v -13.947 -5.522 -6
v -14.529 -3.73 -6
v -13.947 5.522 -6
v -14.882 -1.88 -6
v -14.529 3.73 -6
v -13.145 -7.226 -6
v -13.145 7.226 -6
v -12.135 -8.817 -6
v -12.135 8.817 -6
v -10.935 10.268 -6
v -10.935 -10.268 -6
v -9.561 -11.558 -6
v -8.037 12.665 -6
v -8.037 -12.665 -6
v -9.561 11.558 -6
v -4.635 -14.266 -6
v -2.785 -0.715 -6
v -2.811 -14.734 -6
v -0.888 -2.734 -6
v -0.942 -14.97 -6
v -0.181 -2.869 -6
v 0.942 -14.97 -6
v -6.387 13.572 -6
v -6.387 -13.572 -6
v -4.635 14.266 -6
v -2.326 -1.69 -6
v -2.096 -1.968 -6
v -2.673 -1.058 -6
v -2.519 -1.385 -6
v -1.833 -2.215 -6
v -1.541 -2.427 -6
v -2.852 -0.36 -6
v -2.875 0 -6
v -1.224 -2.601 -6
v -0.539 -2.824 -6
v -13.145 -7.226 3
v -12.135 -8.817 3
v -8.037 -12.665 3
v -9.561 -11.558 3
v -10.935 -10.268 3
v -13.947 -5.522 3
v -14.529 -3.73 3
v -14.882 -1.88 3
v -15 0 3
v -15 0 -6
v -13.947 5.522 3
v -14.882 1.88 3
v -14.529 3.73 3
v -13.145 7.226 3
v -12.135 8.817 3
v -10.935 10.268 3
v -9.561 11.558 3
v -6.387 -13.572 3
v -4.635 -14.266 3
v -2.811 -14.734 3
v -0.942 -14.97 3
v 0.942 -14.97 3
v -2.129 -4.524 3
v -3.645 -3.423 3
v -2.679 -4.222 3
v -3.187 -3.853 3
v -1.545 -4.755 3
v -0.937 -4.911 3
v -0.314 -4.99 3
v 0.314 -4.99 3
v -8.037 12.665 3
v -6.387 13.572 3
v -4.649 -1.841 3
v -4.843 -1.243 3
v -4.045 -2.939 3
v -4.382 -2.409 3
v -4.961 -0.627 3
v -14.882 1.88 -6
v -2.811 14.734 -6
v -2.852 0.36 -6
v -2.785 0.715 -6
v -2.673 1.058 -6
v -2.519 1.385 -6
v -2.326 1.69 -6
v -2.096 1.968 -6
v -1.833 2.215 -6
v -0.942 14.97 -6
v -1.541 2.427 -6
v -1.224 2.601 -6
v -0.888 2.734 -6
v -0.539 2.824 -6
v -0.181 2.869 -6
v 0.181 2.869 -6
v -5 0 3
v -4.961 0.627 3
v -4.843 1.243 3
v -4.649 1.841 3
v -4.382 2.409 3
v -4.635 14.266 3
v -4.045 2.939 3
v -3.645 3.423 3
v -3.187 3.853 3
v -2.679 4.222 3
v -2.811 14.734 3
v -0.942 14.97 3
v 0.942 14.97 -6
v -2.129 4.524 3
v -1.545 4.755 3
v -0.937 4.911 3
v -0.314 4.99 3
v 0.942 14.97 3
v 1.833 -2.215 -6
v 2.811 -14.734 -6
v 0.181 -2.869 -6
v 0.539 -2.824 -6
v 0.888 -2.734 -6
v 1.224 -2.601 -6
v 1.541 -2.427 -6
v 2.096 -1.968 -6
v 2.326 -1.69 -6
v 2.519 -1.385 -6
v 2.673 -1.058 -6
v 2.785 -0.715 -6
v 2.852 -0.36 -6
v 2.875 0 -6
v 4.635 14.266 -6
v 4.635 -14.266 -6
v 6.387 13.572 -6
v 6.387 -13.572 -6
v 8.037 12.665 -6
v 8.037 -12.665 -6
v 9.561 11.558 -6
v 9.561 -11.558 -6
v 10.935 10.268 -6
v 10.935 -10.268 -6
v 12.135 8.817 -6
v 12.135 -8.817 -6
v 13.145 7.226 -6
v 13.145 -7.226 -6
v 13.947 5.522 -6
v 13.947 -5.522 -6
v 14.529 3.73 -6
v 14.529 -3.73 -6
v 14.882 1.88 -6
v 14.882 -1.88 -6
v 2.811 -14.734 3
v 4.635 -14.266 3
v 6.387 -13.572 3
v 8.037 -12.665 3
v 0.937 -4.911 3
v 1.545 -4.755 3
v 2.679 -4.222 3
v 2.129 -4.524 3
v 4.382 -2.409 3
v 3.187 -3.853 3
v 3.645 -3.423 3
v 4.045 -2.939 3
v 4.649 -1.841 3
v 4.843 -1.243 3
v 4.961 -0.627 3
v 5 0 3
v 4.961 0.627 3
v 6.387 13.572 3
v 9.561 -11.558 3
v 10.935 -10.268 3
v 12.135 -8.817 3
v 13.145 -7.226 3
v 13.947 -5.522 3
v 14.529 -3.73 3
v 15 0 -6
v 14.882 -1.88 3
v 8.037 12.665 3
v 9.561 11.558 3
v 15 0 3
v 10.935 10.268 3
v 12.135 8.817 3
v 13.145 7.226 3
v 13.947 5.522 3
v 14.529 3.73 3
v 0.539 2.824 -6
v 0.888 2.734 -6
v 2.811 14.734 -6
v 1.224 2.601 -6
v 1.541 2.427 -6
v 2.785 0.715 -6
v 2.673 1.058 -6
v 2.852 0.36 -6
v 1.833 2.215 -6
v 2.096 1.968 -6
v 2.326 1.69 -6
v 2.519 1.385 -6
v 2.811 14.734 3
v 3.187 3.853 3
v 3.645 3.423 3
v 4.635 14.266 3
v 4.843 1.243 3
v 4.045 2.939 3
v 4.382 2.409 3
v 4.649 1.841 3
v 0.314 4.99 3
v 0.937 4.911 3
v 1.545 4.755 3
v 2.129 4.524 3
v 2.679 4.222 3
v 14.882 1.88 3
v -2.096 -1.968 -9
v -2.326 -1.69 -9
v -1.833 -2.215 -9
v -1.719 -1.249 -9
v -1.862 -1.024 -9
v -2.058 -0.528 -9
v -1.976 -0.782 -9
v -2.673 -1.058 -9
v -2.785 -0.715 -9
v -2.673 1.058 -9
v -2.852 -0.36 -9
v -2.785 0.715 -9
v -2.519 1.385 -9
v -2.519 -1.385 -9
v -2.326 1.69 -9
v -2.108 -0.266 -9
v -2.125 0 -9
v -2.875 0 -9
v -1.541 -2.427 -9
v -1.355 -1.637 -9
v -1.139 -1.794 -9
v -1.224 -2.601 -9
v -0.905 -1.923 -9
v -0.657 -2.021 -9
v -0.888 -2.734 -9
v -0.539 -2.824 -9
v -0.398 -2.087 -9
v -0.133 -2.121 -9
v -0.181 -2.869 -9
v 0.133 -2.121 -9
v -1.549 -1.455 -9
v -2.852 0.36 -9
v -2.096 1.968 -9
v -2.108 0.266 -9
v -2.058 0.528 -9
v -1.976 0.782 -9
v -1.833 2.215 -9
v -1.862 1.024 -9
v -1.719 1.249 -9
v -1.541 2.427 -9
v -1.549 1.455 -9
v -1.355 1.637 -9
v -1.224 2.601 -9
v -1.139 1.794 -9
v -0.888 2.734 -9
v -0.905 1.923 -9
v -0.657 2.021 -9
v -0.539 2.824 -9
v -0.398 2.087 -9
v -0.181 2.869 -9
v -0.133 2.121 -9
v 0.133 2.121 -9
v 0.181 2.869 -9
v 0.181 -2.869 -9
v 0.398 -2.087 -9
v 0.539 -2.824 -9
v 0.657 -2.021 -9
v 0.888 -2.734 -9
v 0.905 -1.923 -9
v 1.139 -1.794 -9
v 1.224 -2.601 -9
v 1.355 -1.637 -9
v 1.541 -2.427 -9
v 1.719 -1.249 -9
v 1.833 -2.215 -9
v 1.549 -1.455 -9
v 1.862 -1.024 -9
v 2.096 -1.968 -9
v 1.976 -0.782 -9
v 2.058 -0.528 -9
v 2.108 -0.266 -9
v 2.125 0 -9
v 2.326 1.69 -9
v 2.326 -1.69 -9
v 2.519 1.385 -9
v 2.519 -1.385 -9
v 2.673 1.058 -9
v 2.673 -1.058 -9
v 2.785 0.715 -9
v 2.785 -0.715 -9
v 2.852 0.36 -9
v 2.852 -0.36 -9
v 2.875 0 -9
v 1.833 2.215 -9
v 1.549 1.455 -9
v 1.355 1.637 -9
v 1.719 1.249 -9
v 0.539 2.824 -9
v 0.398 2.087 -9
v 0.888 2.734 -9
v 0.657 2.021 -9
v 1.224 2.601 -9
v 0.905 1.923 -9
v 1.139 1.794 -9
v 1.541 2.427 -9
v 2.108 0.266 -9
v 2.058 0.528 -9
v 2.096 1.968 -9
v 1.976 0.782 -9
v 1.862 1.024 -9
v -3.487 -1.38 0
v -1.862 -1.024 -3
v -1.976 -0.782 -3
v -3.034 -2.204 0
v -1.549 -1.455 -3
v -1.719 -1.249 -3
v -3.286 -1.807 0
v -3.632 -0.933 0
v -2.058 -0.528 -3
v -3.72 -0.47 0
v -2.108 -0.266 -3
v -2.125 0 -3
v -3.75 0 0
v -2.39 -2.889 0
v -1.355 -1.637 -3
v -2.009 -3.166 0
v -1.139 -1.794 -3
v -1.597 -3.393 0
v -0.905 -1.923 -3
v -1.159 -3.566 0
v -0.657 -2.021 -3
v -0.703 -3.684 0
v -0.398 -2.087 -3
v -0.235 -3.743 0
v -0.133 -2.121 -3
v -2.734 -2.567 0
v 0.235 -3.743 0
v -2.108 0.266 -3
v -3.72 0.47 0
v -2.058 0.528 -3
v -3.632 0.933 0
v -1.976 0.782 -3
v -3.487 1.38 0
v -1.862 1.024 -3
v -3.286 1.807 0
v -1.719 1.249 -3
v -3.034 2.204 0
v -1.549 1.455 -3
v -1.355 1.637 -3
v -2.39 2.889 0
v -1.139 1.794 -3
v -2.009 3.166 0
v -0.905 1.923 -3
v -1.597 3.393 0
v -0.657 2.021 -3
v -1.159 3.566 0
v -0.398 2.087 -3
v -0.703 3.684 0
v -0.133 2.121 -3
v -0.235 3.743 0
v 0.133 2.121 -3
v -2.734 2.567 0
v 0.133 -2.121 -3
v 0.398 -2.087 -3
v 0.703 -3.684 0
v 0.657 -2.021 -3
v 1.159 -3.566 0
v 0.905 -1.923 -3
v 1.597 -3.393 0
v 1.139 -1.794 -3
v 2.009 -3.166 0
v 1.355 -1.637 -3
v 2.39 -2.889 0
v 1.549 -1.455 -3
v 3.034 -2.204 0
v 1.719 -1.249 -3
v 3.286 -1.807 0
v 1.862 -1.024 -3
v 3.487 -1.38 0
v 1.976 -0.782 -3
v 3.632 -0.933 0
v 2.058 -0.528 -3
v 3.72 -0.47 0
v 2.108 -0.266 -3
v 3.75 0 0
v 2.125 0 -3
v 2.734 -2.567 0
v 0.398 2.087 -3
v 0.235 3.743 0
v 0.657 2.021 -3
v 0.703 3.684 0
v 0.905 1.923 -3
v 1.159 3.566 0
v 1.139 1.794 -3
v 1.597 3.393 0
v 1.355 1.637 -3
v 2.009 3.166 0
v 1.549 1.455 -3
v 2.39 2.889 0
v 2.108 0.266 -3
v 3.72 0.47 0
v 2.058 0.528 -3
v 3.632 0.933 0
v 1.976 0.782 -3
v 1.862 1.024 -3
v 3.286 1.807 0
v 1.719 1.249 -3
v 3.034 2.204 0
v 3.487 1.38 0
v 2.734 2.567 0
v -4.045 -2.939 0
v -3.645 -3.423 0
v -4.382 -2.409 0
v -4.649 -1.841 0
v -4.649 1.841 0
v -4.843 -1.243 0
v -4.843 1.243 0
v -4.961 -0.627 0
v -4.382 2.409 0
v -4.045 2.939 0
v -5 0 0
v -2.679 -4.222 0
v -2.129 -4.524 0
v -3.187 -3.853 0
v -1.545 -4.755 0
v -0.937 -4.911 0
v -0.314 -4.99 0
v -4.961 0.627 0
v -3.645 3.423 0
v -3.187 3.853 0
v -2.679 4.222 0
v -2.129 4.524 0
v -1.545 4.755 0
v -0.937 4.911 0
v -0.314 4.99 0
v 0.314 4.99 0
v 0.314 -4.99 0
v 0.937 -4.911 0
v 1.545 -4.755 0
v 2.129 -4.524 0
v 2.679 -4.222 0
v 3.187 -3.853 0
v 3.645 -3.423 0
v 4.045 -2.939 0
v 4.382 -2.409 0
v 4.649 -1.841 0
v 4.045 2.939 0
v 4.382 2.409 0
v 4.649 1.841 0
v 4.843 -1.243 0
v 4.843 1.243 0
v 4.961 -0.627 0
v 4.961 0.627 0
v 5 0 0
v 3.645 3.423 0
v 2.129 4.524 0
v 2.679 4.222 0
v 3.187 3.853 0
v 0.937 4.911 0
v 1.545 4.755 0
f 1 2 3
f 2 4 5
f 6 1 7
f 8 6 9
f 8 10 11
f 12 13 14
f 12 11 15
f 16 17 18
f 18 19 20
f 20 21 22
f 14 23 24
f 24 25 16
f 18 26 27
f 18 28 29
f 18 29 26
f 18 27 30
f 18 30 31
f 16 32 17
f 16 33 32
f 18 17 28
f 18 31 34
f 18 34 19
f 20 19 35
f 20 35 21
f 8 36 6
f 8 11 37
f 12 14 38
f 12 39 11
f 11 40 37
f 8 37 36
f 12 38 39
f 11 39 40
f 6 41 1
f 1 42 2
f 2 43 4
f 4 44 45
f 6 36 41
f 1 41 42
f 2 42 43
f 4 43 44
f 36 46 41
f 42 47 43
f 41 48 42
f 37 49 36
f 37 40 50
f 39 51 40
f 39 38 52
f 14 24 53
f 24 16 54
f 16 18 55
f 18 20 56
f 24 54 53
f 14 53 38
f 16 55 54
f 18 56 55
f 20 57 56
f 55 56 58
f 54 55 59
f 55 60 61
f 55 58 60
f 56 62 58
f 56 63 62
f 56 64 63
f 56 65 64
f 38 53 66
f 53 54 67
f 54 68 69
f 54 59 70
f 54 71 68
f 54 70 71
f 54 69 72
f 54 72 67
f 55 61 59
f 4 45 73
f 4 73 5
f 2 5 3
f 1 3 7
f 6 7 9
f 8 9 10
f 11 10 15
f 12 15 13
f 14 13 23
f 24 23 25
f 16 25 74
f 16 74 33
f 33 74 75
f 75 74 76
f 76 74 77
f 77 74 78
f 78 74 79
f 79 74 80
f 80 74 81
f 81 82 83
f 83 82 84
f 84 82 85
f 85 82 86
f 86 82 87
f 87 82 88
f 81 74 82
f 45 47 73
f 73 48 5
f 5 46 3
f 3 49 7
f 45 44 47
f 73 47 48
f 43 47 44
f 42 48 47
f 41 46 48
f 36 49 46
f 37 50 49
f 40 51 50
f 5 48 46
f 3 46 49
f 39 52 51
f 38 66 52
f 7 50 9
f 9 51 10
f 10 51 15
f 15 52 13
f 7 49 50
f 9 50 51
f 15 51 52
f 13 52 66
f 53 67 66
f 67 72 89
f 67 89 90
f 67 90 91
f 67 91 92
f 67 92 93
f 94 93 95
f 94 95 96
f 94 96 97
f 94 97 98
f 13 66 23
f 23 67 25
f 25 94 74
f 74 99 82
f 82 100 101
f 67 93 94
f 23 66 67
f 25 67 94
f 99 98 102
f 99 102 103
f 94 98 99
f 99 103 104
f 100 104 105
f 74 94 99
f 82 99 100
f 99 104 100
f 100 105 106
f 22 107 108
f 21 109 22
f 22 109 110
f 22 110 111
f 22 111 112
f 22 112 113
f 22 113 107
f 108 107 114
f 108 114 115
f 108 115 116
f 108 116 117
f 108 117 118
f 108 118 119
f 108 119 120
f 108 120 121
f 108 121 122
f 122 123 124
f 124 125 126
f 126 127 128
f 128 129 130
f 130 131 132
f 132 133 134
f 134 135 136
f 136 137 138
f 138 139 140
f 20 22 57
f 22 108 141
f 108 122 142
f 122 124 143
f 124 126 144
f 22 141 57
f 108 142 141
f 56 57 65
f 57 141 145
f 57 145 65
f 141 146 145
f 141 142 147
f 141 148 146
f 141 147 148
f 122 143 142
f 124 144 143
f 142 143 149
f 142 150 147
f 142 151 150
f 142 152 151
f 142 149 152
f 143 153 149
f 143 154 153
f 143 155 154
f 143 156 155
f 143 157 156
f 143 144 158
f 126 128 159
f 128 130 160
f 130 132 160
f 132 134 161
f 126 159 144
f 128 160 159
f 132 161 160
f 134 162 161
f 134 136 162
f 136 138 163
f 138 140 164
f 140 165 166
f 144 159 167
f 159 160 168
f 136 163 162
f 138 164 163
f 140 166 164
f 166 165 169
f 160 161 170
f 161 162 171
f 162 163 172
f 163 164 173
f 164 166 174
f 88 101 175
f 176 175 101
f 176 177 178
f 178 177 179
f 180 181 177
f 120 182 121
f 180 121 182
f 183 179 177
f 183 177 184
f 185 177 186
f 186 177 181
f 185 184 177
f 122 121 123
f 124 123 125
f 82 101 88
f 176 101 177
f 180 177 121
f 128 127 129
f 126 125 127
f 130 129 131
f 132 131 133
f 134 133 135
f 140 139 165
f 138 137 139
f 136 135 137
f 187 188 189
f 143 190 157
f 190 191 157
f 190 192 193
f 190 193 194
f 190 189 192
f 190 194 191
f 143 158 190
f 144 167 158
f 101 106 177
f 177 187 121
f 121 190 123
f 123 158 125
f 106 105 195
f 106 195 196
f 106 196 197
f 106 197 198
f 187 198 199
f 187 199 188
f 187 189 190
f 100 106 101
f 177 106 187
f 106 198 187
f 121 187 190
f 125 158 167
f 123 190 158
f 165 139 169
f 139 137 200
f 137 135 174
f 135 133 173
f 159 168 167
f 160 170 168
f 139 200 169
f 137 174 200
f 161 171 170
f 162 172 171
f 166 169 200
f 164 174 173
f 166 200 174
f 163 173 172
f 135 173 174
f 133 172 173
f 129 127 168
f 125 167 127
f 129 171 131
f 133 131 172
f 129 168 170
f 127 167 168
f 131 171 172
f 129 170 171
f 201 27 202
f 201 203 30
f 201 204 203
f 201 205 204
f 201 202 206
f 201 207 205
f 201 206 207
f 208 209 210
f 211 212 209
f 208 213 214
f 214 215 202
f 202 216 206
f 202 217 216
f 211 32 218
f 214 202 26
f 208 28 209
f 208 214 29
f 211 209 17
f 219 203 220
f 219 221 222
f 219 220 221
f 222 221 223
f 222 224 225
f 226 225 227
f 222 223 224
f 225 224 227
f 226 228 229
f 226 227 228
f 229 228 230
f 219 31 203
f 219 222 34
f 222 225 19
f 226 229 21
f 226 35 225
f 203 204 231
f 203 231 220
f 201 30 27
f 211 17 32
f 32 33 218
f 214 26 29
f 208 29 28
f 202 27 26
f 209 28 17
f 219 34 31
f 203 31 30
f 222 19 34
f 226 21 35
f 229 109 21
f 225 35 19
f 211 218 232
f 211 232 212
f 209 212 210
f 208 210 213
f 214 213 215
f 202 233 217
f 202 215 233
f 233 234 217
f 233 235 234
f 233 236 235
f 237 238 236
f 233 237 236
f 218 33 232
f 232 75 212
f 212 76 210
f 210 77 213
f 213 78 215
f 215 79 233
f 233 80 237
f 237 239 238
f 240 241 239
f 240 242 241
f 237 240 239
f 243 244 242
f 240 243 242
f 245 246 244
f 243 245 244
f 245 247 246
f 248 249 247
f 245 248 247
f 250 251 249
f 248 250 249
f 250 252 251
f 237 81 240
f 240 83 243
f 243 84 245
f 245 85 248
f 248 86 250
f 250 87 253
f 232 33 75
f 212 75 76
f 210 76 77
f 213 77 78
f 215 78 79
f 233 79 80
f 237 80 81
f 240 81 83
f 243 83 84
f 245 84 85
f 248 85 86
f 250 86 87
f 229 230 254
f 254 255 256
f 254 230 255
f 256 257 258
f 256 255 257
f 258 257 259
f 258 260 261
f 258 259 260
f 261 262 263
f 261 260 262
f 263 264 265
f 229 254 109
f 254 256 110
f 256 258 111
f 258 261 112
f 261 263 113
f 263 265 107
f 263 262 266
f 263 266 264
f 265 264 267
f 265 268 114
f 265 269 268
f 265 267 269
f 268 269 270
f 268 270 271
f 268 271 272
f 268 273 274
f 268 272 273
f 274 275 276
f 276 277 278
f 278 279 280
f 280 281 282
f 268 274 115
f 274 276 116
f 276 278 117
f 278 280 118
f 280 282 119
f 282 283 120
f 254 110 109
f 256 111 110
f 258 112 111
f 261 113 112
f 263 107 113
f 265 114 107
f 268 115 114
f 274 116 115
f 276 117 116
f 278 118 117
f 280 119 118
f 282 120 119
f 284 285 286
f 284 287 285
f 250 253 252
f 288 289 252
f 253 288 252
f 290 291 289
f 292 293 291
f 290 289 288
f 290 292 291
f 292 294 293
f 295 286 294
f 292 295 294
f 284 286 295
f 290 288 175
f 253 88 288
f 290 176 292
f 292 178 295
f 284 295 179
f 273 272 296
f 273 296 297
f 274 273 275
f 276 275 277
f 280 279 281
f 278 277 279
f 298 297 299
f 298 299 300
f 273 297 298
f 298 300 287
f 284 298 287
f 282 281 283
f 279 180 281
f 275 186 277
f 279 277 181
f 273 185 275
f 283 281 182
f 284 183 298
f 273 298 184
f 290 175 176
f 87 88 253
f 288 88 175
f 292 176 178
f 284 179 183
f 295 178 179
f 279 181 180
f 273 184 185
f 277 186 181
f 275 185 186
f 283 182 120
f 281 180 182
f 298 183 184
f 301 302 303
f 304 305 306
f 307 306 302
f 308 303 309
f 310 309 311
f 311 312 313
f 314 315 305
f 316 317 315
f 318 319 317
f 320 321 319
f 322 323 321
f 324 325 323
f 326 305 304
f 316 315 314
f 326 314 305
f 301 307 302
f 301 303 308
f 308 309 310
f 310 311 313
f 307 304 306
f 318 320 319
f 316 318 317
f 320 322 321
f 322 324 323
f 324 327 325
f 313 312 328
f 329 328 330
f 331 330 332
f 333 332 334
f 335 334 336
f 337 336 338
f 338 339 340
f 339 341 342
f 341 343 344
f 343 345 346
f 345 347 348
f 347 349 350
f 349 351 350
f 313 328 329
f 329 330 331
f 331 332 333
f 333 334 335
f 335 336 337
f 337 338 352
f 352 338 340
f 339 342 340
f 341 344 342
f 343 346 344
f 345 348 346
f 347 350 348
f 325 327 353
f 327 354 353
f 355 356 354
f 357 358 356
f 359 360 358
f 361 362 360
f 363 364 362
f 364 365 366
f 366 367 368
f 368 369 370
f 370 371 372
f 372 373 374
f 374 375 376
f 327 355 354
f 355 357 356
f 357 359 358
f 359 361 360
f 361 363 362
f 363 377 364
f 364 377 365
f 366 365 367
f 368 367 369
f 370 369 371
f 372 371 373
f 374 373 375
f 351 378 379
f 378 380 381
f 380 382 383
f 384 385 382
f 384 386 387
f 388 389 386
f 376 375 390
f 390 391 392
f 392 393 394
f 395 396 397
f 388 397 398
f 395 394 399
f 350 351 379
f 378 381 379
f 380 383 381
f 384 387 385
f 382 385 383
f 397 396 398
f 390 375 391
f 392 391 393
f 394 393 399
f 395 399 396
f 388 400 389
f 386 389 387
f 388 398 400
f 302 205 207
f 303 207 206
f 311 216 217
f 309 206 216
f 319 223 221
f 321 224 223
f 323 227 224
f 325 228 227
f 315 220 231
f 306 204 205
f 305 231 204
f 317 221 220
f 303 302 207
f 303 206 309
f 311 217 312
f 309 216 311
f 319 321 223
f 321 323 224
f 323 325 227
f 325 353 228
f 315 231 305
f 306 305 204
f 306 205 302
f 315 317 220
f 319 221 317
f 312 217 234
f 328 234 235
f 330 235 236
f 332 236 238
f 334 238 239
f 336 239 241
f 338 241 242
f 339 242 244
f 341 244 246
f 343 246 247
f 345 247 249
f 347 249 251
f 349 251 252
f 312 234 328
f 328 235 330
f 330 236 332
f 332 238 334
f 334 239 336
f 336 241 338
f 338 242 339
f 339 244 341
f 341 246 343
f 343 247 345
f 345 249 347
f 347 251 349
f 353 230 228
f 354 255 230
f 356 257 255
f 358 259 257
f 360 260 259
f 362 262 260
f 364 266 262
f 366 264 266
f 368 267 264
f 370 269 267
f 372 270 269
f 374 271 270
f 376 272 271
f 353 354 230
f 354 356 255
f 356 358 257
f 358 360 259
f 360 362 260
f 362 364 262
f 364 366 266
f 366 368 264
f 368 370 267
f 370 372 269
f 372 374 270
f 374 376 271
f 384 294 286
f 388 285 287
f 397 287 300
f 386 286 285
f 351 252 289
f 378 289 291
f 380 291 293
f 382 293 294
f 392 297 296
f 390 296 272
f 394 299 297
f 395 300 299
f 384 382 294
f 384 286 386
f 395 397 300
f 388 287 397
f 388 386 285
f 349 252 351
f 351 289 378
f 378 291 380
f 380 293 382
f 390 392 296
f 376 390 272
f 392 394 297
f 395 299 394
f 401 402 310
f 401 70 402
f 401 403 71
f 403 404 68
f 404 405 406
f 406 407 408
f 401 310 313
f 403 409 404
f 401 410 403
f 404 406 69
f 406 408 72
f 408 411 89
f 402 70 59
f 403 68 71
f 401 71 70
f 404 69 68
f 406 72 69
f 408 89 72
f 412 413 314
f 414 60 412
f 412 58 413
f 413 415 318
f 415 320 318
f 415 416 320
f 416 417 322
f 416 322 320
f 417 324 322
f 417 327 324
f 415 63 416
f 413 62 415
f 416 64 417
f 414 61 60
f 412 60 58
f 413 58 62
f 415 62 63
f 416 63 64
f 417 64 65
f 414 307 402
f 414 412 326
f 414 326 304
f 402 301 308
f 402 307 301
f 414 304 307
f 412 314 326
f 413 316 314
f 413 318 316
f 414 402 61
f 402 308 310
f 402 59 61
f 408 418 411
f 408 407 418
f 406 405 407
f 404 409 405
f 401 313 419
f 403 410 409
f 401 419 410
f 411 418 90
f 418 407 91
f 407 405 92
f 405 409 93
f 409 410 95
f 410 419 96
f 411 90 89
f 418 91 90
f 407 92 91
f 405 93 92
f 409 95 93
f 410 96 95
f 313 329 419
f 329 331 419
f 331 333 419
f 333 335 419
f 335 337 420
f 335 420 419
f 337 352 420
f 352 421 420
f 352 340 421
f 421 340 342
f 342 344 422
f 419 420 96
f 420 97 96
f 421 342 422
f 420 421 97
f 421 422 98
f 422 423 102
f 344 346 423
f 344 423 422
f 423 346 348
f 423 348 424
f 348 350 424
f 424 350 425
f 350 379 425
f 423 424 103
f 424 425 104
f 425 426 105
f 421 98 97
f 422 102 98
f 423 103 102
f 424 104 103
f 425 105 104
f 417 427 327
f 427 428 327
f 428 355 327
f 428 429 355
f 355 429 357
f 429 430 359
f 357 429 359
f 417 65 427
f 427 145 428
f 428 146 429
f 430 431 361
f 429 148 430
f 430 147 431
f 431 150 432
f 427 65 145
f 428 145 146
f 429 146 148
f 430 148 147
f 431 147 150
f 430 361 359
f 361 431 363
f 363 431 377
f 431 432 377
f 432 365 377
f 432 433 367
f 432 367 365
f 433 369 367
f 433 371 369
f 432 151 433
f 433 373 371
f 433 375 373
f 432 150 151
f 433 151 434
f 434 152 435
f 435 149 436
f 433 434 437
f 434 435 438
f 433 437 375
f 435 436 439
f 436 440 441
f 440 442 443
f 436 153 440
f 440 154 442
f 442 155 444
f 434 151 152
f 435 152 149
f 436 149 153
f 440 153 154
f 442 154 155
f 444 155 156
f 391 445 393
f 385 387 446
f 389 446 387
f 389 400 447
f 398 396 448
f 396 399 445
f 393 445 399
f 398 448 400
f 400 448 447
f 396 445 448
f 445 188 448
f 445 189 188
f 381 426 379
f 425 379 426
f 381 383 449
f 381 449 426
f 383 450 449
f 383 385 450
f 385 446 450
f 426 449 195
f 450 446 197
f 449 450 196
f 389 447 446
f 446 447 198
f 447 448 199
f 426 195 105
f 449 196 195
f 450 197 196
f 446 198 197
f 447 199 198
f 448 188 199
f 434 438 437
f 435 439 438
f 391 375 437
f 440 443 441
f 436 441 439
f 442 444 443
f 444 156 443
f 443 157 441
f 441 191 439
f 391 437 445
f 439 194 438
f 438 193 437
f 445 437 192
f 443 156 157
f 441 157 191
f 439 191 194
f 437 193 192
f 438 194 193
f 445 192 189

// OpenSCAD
$fn = 50;


difference() {
	union() {
		translate(v = [0, 0, -6.0000000000]) {
			cylinder(h = 9, r = 15.0000000000);
		}
		#translate(v = [0, 0, -9.0000000000]) {
			cylinder(h = 9, r = 2.8750000000);
		}
	}
	union() {
		translate(v = [0, 0, 0]) {
			rotate(a = [0, 0, 0]) {
				difference() {
					union() {
						translate(v = [0, 0, -9.0000000000]) {
							cylinder(h = 9, r = 2.0000000000);
						}
						translate(v = [0, 0, -3]) {
							cylinder(h = 3, r1 = 2.1250000000, r2 = 3.7500000000);
						}
						translate(v = [0, 0, -9.0000000000]) {
							cylinder(h = 9, r = 2.1250000000);
						}
						translate(v = [0, 0, -9.0000000000]) {
							cylinder(h = 9, r = 2.0000000000);
						}
					}
					union();
				}
			}
		}
		#cylinder(h = 3, r = 5.0000000000);
	}
}
